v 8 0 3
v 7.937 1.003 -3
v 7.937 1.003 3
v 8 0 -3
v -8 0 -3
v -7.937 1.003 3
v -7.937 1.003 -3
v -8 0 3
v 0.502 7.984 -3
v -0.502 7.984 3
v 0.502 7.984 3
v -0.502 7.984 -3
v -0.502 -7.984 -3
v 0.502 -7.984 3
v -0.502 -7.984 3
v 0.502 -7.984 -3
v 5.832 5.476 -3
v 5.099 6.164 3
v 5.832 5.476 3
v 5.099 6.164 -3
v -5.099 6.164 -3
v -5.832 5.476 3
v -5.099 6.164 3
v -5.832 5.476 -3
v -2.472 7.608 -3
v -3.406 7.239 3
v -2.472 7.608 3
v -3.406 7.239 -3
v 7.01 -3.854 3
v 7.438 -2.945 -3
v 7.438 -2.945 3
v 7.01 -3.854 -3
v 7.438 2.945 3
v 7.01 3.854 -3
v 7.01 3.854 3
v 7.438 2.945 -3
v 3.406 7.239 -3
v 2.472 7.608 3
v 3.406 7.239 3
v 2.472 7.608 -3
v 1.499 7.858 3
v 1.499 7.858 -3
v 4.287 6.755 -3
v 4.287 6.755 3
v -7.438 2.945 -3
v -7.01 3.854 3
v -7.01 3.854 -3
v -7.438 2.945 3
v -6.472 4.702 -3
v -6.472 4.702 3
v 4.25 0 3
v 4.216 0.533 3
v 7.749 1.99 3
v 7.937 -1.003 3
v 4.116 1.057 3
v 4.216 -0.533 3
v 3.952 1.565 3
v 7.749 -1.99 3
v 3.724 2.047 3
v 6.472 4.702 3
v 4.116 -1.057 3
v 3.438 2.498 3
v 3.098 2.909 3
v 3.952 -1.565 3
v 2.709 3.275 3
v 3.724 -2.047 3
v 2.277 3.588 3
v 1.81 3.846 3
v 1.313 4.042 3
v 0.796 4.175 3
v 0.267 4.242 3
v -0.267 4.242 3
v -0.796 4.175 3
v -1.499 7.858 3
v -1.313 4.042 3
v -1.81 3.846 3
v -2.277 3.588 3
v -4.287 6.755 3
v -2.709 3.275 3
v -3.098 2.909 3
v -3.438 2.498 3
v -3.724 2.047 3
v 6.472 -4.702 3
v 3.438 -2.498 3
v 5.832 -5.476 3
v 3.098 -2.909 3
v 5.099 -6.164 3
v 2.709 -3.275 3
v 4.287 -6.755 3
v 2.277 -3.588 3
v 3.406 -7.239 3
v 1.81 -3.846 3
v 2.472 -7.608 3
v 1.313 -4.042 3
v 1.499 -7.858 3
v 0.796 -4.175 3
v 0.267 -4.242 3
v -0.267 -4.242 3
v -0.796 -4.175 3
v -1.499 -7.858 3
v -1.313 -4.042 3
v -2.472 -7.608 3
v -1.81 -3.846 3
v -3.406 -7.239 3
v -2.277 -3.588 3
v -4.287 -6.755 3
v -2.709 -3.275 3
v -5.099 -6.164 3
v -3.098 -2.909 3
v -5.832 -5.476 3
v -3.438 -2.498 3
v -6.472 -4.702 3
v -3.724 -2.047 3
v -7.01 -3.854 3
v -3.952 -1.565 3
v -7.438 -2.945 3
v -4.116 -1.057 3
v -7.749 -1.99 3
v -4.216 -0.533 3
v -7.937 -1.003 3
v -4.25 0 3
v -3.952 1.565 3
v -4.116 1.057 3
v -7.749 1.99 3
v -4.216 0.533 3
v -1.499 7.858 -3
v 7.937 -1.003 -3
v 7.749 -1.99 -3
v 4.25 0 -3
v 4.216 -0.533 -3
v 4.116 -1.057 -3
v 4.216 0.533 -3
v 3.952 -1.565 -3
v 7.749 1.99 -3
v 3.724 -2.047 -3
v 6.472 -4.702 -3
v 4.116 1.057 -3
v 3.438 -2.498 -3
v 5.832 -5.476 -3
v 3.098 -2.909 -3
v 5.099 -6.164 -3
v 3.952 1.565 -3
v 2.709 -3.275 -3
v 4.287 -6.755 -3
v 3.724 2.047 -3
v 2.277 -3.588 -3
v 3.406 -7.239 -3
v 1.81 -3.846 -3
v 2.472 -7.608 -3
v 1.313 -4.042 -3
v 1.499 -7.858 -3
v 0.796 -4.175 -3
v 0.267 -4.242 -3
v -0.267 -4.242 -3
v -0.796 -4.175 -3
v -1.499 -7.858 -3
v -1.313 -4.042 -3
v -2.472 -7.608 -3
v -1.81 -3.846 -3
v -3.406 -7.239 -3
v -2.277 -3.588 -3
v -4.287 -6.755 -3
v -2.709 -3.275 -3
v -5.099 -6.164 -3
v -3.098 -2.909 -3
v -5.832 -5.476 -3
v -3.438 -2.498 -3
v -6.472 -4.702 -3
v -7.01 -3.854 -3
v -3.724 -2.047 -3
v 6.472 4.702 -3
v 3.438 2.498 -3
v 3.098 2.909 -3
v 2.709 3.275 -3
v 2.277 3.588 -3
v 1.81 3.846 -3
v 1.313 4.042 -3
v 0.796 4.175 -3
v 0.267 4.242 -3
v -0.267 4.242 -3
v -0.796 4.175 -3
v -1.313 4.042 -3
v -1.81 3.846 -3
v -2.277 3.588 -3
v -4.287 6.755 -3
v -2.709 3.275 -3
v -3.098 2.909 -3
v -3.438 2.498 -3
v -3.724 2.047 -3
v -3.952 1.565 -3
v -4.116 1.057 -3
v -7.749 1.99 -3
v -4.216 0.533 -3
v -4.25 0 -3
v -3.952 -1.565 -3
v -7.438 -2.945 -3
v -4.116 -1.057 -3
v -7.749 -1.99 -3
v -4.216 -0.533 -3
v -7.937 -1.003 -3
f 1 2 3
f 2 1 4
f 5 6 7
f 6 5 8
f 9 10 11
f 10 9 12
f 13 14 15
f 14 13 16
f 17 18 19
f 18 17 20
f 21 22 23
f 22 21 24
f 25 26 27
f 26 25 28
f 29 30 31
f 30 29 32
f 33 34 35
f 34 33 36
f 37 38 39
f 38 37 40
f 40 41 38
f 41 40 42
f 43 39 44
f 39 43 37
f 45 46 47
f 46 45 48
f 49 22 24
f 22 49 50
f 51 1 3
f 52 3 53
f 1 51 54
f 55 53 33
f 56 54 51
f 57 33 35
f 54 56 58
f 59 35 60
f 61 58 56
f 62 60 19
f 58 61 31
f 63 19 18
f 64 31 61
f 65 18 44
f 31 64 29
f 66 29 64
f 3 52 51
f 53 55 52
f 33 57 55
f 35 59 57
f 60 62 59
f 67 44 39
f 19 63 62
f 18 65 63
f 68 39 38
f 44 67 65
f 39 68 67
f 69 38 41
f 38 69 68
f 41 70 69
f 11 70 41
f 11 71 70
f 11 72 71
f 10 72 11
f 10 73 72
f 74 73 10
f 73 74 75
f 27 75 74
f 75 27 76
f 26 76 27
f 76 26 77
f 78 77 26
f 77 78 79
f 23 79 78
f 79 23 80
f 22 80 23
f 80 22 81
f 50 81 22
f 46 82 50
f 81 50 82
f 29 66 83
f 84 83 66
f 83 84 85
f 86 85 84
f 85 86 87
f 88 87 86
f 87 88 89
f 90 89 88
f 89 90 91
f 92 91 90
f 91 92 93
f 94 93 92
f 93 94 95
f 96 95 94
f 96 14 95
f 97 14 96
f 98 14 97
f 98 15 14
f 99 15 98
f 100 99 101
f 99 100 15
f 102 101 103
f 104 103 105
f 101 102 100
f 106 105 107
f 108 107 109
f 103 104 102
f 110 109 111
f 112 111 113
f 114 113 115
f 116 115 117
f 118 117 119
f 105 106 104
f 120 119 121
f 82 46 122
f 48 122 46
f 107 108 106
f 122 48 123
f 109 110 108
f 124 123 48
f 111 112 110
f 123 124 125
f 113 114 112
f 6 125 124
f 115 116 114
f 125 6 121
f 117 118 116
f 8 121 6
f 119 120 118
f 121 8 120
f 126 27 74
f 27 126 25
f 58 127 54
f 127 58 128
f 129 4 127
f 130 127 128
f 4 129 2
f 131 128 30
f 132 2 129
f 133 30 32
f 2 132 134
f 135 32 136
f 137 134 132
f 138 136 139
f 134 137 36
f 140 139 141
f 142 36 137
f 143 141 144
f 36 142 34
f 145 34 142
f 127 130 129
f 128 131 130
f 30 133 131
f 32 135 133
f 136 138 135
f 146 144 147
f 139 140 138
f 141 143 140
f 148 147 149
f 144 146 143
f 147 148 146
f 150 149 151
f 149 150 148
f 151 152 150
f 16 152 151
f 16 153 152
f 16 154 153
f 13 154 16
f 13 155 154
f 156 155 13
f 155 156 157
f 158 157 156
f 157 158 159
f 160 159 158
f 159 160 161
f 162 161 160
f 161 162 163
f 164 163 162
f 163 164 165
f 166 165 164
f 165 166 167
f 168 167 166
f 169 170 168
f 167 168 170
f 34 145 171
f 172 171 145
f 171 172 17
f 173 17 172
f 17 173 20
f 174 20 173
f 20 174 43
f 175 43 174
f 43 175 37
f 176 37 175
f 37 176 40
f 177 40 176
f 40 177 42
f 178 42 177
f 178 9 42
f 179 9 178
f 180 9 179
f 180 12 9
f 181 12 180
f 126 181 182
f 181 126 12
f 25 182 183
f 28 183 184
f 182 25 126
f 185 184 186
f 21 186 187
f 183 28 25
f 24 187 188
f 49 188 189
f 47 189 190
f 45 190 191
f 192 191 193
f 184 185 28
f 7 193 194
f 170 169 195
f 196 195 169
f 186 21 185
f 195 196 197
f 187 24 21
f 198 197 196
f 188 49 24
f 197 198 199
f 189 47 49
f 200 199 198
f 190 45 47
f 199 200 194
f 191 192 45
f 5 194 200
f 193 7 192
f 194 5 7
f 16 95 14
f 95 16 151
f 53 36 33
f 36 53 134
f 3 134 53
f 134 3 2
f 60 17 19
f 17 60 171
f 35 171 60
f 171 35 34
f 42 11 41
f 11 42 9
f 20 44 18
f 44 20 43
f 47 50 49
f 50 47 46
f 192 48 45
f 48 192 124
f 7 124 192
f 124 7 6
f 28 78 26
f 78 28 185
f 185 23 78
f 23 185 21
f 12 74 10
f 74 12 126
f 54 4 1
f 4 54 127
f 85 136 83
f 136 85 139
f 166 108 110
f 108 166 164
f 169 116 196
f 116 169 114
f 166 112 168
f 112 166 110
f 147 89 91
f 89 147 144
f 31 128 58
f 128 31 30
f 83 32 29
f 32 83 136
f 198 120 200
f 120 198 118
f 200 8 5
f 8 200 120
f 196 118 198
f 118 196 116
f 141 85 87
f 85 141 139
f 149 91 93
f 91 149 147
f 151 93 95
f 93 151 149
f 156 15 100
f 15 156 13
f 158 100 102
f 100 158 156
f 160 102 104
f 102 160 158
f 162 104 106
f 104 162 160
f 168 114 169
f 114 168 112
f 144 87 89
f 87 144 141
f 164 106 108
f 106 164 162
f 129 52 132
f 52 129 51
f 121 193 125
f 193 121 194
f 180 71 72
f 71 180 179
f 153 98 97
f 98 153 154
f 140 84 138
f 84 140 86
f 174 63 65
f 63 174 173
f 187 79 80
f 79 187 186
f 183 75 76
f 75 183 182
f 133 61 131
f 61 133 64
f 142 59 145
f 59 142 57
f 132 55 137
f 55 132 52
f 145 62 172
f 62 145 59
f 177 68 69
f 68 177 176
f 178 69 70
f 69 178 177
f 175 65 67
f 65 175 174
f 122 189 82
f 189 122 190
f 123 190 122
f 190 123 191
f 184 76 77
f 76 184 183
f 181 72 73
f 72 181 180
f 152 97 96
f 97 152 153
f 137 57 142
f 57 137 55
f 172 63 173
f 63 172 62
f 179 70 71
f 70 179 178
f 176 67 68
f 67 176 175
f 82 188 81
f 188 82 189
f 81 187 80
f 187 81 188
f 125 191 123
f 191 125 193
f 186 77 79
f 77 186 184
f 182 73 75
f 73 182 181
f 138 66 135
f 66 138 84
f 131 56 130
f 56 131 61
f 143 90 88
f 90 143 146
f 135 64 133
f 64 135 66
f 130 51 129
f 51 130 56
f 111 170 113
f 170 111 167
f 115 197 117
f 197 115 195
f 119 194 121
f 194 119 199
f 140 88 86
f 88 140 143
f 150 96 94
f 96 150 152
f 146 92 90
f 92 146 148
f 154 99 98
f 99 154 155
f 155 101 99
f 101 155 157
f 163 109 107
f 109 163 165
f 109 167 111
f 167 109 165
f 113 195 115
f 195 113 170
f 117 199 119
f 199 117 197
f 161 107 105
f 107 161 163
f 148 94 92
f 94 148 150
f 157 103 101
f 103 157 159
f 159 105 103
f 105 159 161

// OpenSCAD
$fn = 50;


difference() {
	union() {
		translate(v = [0, 0, -3.0000000000]) {
			cylinder(h = 6, r = 8.0000000000);
		}
	}
	union() {
		translate(v = [0, 0, -100.0000000000]) {
			cylinder(h = 200, r = 4.2500000000);
		}
	}
}
